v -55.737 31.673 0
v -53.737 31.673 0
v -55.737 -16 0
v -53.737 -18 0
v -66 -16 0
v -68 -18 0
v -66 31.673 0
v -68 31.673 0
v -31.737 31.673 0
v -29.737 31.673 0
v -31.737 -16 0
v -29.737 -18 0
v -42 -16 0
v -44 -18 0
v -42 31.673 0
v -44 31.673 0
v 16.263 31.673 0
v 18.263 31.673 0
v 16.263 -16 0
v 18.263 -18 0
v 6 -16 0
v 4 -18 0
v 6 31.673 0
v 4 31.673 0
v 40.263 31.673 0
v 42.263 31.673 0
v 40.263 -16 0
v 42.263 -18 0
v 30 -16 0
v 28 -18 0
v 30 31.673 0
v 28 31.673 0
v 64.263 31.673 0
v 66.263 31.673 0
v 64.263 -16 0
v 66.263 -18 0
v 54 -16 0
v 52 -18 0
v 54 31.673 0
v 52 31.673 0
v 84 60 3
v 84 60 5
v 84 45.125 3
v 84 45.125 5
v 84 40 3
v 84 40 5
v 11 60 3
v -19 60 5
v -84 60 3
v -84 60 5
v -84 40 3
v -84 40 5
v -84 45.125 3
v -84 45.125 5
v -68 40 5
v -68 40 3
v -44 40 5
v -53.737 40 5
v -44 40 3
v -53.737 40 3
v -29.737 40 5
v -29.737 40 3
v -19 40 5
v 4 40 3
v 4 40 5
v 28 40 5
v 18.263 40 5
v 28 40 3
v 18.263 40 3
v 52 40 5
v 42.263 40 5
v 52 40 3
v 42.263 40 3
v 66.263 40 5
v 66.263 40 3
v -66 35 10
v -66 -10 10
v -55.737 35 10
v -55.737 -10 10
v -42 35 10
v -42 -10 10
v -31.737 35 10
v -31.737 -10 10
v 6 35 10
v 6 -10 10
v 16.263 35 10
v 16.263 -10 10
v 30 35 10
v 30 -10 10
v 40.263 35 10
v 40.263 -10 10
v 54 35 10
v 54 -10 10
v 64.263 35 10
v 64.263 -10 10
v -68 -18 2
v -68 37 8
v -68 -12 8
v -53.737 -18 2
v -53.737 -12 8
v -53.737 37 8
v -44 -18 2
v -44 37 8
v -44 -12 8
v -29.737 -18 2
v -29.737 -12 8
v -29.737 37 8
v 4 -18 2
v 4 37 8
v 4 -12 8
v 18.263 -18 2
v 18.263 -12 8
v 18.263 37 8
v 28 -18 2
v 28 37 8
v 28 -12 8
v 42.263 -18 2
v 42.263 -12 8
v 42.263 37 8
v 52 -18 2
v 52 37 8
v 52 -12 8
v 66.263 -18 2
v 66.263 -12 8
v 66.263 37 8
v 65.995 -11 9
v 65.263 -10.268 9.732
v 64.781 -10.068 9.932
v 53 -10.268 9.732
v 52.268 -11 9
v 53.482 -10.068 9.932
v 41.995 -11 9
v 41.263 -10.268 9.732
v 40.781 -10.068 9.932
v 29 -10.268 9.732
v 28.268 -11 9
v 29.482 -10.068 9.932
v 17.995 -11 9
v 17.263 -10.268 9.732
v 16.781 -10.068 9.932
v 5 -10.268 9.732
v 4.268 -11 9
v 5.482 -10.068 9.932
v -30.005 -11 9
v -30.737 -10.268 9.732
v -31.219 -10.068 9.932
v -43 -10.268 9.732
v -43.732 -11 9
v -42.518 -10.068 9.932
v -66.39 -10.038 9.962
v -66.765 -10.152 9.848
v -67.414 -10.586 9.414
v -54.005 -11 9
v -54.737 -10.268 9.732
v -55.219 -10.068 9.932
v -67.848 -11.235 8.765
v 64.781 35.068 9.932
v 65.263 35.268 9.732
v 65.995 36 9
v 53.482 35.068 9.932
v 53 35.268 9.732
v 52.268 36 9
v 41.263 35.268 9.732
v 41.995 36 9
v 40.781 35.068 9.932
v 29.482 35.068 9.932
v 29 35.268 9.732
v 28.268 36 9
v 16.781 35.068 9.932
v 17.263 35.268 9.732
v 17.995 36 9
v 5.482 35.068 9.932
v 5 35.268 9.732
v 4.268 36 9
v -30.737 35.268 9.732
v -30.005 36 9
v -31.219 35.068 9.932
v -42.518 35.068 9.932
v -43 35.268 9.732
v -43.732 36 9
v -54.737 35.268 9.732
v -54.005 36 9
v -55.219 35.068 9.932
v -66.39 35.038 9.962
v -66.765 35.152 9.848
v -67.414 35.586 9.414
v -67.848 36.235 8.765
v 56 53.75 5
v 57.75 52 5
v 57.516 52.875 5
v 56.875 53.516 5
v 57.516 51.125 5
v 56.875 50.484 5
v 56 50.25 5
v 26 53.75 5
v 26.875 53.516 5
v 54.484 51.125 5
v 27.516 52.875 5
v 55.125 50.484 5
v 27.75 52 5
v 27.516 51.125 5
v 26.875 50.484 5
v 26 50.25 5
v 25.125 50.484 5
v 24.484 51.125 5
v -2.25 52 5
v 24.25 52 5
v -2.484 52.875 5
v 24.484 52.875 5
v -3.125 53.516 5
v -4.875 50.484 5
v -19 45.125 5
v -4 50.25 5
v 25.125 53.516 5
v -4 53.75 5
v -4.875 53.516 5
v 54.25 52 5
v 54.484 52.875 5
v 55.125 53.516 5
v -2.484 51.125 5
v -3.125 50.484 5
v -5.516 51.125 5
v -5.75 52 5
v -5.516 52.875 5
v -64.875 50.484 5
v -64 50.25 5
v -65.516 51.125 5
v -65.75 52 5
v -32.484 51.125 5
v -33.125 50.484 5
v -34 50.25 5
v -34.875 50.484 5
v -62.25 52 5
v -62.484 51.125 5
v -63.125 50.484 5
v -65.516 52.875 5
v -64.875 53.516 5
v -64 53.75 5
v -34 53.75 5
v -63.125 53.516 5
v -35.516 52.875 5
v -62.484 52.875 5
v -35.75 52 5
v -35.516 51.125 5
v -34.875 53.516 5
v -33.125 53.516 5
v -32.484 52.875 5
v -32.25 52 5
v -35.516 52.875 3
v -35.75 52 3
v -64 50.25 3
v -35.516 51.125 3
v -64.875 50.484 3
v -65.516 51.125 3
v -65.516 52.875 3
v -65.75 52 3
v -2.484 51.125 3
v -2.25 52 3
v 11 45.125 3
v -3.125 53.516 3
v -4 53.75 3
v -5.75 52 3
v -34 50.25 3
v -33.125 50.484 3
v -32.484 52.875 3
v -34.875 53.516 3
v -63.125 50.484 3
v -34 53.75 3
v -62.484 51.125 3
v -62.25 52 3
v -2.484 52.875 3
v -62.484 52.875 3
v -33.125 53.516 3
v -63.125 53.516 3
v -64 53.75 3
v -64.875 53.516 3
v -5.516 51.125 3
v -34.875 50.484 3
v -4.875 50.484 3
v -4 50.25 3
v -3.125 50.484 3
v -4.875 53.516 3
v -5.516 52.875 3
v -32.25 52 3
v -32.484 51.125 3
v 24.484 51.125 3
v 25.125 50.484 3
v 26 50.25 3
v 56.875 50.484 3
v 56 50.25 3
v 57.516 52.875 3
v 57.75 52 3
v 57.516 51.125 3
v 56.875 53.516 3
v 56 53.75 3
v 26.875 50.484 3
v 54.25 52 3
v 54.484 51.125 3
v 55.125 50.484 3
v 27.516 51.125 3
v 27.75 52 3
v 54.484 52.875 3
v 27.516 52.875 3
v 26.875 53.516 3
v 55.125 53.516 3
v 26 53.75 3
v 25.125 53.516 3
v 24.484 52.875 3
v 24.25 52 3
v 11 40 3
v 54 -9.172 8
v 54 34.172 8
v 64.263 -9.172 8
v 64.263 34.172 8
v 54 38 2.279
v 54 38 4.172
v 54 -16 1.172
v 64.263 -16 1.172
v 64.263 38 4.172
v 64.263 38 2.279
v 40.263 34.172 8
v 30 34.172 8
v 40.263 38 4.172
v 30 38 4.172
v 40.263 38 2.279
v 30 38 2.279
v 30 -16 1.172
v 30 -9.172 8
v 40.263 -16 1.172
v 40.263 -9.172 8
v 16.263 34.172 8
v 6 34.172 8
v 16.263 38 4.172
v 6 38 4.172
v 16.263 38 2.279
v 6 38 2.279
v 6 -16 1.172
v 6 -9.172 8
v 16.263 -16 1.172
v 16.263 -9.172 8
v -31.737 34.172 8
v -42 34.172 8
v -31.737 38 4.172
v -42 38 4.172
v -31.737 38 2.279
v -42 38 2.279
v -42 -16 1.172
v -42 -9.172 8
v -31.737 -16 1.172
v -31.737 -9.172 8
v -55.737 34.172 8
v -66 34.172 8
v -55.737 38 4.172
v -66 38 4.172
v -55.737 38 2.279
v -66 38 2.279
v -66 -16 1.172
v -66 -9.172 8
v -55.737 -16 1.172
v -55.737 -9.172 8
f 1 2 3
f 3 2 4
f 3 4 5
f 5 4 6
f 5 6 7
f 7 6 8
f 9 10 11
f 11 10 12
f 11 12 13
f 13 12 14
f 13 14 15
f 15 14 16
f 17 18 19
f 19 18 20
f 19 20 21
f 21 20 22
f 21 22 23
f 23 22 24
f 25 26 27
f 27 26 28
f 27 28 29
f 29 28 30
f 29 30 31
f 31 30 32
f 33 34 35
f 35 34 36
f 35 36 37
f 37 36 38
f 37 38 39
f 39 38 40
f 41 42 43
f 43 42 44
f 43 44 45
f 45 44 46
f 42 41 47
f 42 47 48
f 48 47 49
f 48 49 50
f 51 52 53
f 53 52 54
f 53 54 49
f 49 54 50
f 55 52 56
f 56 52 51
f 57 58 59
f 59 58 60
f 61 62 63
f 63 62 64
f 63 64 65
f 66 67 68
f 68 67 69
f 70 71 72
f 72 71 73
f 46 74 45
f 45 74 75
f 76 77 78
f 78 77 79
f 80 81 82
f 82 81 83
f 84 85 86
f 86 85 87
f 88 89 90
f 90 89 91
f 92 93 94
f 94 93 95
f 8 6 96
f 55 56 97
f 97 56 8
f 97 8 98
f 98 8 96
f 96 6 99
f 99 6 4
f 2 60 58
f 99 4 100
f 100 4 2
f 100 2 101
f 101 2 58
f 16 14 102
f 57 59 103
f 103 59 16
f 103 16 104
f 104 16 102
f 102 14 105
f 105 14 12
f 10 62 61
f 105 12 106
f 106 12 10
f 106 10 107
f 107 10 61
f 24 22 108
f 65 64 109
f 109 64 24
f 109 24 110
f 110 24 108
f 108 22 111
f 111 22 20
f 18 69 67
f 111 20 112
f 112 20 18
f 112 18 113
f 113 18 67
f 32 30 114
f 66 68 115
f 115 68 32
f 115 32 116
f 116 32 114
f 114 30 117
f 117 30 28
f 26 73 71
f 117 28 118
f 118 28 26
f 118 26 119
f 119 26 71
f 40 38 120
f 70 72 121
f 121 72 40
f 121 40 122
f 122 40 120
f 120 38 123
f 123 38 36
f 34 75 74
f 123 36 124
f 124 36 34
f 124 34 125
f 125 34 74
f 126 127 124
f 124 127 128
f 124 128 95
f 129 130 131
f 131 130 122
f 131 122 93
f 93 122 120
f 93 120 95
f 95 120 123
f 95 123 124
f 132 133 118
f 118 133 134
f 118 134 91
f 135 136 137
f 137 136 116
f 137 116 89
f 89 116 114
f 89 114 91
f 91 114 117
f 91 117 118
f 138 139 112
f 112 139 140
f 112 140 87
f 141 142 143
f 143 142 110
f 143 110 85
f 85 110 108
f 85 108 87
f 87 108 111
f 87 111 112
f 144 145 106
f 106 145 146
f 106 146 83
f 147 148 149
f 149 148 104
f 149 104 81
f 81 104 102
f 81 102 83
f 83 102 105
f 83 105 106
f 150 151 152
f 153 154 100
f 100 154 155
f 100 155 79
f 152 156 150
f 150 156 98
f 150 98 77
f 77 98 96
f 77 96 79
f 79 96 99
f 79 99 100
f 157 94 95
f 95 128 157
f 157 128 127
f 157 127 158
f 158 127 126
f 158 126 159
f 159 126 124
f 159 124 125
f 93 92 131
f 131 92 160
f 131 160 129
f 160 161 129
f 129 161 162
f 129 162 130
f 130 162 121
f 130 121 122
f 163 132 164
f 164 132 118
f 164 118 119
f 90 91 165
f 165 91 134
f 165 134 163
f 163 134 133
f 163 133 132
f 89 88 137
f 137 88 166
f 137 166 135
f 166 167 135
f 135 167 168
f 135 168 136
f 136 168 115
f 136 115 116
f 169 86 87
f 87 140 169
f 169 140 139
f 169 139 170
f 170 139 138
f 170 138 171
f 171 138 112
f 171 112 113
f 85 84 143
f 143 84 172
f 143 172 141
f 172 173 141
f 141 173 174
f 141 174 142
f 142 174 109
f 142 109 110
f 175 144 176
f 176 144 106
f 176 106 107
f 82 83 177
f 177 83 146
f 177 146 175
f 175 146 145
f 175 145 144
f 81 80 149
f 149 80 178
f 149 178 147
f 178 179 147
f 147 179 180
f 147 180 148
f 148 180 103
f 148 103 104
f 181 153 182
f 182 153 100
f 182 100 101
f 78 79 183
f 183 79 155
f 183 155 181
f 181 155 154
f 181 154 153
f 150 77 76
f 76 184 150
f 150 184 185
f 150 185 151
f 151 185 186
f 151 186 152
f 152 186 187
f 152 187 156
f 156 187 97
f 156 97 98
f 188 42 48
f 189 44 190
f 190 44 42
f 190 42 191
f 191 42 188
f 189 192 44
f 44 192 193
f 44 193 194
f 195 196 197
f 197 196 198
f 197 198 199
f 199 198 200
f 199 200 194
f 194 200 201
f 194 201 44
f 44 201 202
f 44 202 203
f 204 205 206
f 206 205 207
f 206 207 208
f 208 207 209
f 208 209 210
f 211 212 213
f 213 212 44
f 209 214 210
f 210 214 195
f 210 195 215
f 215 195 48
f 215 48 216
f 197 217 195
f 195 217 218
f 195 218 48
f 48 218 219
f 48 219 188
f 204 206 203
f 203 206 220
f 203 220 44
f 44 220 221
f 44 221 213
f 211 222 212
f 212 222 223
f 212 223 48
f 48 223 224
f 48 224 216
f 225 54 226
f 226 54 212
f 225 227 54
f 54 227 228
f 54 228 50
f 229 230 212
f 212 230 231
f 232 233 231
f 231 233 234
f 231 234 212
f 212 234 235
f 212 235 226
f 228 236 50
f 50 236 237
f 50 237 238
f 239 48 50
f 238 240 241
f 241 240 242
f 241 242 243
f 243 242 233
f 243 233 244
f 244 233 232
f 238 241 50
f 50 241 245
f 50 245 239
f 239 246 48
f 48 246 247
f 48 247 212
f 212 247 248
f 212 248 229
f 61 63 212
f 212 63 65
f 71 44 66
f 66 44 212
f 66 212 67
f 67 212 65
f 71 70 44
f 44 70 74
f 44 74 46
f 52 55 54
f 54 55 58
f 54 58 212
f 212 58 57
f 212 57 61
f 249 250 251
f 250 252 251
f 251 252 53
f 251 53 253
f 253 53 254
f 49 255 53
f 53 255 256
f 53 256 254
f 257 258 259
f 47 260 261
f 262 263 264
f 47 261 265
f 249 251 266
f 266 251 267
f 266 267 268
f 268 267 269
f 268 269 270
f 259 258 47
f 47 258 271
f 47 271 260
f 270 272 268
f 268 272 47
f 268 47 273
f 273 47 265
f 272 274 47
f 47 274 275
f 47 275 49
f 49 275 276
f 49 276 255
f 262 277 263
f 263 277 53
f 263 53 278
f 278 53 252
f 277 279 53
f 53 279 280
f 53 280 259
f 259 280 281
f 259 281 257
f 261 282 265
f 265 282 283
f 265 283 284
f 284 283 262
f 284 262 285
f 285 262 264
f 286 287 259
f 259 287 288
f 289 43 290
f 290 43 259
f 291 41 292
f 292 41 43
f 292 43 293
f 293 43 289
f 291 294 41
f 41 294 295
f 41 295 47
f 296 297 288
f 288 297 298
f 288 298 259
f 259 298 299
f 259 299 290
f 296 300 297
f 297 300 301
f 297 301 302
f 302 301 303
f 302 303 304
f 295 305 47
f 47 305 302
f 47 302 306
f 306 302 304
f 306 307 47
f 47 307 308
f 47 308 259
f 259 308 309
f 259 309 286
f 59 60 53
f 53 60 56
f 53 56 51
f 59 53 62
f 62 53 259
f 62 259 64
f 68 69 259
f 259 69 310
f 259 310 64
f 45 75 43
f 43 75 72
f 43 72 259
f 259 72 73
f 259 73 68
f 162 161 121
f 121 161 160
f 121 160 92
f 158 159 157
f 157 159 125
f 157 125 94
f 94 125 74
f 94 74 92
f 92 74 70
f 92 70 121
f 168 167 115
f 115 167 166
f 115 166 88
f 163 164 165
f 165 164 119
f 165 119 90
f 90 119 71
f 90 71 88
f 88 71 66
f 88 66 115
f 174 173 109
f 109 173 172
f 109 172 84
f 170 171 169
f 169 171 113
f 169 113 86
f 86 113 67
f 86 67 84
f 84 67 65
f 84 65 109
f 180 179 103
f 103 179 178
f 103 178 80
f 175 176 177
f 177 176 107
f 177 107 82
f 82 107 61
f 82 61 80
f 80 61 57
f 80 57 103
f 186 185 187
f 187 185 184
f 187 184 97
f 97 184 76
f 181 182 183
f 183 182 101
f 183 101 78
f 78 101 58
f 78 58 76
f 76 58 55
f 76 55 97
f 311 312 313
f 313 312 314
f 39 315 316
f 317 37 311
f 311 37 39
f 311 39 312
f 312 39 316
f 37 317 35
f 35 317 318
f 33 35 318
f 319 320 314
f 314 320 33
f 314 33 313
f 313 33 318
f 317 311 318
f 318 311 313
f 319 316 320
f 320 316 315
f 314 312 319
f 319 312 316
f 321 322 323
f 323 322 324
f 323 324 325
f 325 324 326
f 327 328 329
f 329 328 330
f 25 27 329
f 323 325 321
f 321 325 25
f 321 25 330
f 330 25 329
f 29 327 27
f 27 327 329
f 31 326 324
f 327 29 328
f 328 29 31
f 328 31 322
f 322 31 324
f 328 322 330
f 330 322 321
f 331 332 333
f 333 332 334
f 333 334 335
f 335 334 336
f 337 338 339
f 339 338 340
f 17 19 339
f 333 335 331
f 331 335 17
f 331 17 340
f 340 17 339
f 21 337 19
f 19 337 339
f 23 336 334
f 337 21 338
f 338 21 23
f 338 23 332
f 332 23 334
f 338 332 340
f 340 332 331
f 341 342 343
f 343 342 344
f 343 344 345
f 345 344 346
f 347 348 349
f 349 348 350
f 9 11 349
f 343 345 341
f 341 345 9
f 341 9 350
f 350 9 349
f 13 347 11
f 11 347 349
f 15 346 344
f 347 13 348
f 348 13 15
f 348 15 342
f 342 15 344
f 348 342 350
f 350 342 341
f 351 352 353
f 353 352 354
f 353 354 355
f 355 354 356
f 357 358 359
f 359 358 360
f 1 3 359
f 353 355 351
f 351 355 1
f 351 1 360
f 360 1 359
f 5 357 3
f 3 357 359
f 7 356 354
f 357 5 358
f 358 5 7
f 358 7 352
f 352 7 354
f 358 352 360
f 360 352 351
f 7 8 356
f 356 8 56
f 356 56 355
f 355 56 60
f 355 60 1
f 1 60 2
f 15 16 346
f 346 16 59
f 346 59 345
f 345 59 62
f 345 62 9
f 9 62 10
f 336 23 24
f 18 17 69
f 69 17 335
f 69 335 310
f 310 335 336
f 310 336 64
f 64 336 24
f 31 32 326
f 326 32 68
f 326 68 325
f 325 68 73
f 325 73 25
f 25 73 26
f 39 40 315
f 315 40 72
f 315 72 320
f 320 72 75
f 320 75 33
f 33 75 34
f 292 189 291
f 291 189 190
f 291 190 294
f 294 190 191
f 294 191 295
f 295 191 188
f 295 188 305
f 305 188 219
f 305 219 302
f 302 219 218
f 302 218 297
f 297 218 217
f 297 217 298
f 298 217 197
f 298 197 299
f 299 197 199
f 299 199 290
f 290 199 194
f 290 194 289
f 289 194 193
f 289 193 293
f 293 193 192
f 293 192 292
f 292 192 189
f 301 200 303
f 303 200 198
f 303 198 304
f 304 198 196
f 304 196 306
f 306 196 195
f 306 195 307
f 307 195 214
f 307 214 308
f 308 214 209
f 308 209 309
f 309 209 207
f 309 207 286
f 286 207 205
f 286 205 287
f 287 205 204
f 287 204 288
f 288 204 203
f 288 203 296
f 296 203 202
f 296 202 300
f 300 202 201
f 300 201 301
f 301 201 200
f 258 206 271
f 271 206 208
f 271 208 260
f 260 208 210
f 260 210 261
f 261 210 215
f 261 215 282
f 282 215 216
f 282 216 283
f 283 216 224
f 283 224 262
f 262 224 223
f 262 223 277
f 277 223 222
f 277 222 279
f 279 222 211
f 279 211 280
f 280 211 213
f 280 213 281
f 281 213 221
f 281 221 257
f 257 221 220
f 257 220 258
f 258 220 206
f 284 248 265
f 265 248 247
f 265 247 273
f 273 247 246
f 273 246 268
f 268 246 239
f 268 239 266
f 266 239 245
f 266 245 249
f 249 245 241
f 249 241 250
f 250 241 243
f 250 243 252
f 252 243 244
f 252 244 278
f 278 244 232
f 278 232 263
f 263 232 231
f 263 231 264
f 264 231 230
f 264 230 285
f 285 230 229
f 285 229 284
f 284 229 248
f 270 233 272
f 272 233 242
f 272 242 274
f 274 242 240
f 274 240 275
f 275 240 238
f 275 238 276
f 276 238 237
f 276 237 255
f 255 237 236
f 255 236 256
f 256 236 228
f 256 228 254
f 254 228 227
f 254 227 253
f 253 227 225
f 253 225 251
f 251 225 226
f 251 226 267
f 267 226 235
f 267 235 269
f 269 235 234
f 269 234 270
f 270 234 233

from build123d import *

# Parameters (mm, degrees)
SKETCH1_W           = 168
SKETCH1_H           = 120
BOSS_EXTRUDE1_DEPTH = 10
CUT_EXTRUDE1_DEPTH  = 104.7111373
CHAMFER1_SIZE       = 8
FILLET1_R           = 2
SKETCH3_W           = 168
SKETCH3_H           = 20
CUT_EXTRUDE2_DEPTH  = 5
SKETCH4_W           = 168
SKETCH4_H           = 20
CUT_EXTRUDE3_DEPTH  = 3
CHAMFER2_SIZE       = 5
SHELL1_START        = -66
SHELL1_DEPTH        = 10.263276069
SHELL1_START_2      = -42
SHELL1_2_DEPTH      = 10.263276069
SHELL1_START_3      = 6
SHELL1_3_DEPTH      = 10.263276069
SHELL1_START_4      = 30
SHELL1_4_DEPTH      = 10.263276069
SHELL1_START_5      = 54
SHELL1_5_DEPTH      = 10.263276069
CUT_EXTRUDE4_DEPTH  = 164.719271926
SKETCH6_R           = 1.75
CUT_EXTRUDE5_DEPTH  = 104.348923555


# Read off the part's stored shape, not the designer's step: Shell1
with BuildPart() as part:
    # Sketch1 → Boss-Extrude1 (new body)
    with BuildSketch(Plane.XY):
        Rectangle(SKETCH1_W, SKETCH1_H)
    extrude(amount=BOSS_EXTRUDE1_DEPTH)

    # Sketch2 → Cut-Extrude1 (cut, through all)
    with BuildSketch(Plane.XY.offset(10)):
        Polygon((-68, 40), (-68, -18), (-53.736723931, -18), (-53.736723931, 40), (-44, 40), (-44, -18), (-29.736723931, -18), (-29.736723931, 40), (4, 40), (4, -18), (18.263276069, -18), (18.263276069, 40), (28, 40), (28, -18), (42.263276069, -18), (42.263276069, 40), (52, 40), (52, -18), (66.263276069, -18), (66.263276069, 40), (84, 40), (84, -60), (-84, -60), (-84, 40), align=None)
    extrude(amount=-CUT_EXTRUDE1_DEPTH, mode=Mode.SUBTRACT)

    # Chamfer1
    chamfer1_edges = [part.edges().sort_by_distance(p)[0] for p in [
        (59.131638035, -18, 10),
        (35.131638035, -18, 10),
        (11.131638035, -18, 10),
        (-36.868361965, -18, 10),
        (-60.868361965, -18, 10),
    ]]
    chamfer(chamfer1_edges, length=CHAMFER1_SIZE)

    # Fillet1
    fillet1_edges = [part.edges().sort_by_distance(p)[0] for p in [
        (66.263276069, 15, 10),
        (42.263276069, 15, 10),
        (18.263276069, 15, 10),
        (-29.736723931, 15, 10),
        (-53.736723931, 15, 10),
        (52, 15, 10),
        (-68, 15, 10),
        (-44, 15, 10),
        (4, 15, 10),
        (28, 15, 10),
    ]]
    fillet(fillet1_edges, radius=FILLET1_R)

    # Sketch3 → Cut-Extrude2 (cut)
    with BuildSketch(Plane.XY.offset(10)):
        with Locations((0, 50)):
            Rectangle(SKETCH3_W, SKETCH3_H)
    extrude(amount=-CUT_EXTRUDE2_DEPTH, mode=Mode.SUBTRACT)

    # Sketch4 → Cut-Extrude3 (cut)
    with BuildSketch(Plane(origin=(0, 0, 0), x_dir=(-1, 0, 0), z_dir=(0, 0, -1))):
        with Locations((0, 50)):
            Rectangle(SKETCH4_W, SKETCH4_H)
    extrude(amount=-CUT_EXTRUDE3_DEPTH, mode=Mode.SUBTRACT)

    # Chamfer2
    # the kernel refuses this chamfer: 5 mm, written as the material it takes off along each edge
    with BuildSketch(Plane(origin=(77.121691009, 40, 10), x_dir=(0, 0.027495876610586317, -0.9996219169112968), z_dir=(-1, 0, 0)), Plane(origin=(53.121691009, 40, 10), x_dir=(0, 0.027495876610586317, -0.9996219169112968), z_dir=(-1, 0, 0)), Plane(origin=(29.121691009, 40, 10), x_dir=(0, 0.027495876610586317, -0.9996219169112968), z_dir=(-1, 0, 0)), Plane(origin=(-18.878308991, 40, 10), x_dir=(0, 0.027495876610586317, -0.9996219169112968), z_dir=(-1, 0, 0))) as chamfer2_piece_1:
        Polygon((CHAMFER2_SIZE * 0.999621916911, CHAMFER2_SIZE * 0.0274958766106), (-CHAMFER2_SIZE * 0.0274958766106, CHAMFER2_SIZE * 0.999621916911), (0, 0), align=None)
    extrude(amount=35.980105949, mode=Mode.SUBTRACT)
    with BuildSketch(Plane(origin=(-42.878308991, 40, 10), x_dir=(0, -0.9996219169112968, 0.027495876610586317), z_dir=(-1, 0, 0))) as chamfer2_piece_2:
        Polygon((CHAMFER2_SIZE * 0.999621916911, -CHAMFER2_SIZE * 0.0274958766106), (-CHAMFER2_SIZE * 0.0274958766106, -CHAMFER2_SIZE * 0.999621916911), (0, 0), align=None)
    extrude(amount=35.980105949, mode=Mode.SUBTRACT)

    # Shell1 outline → Shell1 (cut)
    with BuildSketch(Plane.YZ.offset(SHELL1_START)):
        Polygon((38, 4.171572875), (34.171572875, 8), (-9.171572875, 8), (-16, 1.171572875), (-16, 0), (38, 0), align=None)
    extrude(amount=SHELL1_DEPTH, mode=Mode.SUBTRACT)

    # Shell1 2 outline → Shell1 2 (cut)
    with BuildSketch(Plane.YZ.offset(SHELL1_START_2)):
        Polygon((38, 4.171572875), (34.171572875, 8), (-9.171572875, 8), (-16, 1.171572875), (-16, 0), (38, 0), align=None)
    extrude(amount=SHELL1_2_DEPTH, mode=Mode.SUBTRACT)

    # Shell1 3 outline → Shell1 3 (cut)
    with BuildSketch(Plane.YZ.offset(SHELL1_START_3)):
        Polygon((38, 4.171572875), (34.171572875, 8), (-9.171572875, 8), (-16, 1.171572875), (-16, 0), (38, 0), align=None)
    extrude(amount=SHELL1_3_DEPTH, mode=Mode.SUBTRACT)

    # Shell1 4 outline → Shell1 4 (cut)
    with BuildSketch(Plane.YZ.offset(SHELL1_START_4)):
        Polygon((38, 4.171572875), (34.171572875, 8), (-9.171572875, 8), (-16, 1.171572875), (-16, 0), (38, 0), align=None)
    extrude(amount=SHELL1_4_DEPTH, mode=Mode.SUBTRACT)

    # Shell1 5 outline → Shell1 5 (cut)
    with BuildSketch(Plane.YZ.offset(SHELL1_START_5)):
        Polygon((38, 4.171572875), (34.171572875, 8), (-9.171572875, 8), (-16, 1.171572875), (-16, 0), (38, 0), align=None)
    extrude(amount=SHELL1_5_DEPTH, mode=Mode.SUBTRACT)

    # Sketch5 → Cut-Extrude4 (cut, through all)
    with BuildSketch(Plane.ZY.offset(68)):
        Polygon((3, 40), (0, 31.673069766), (0, 40), align=None)
    extrude(amount=-CUT_EXTRUDE4_DEPTH, mode=Mode.SUBTRACT)

    # Sketch6 → Cut-Extrude5 (cut, through all)
    with BuildSketch(Plane.XY.offset(5)):
        with Locations((-64, 52)):
            Circle(SKETCH6_R)
        with Locations((-34, 52)):
            Circle(SKETCH6_R)
        with Locations((-4, 52)):
            Circle(SKETCH6_R)
        with Locations((26, 52)):
            Circle(SKETCH6_R)
        with Locations((56, 52)):
            Circle(SKETCH6_R)
    extrude(amount=-CUT_EXTRUDE5_DEPTH, mode=Mode.SUBTRACT)


solid = part.part
